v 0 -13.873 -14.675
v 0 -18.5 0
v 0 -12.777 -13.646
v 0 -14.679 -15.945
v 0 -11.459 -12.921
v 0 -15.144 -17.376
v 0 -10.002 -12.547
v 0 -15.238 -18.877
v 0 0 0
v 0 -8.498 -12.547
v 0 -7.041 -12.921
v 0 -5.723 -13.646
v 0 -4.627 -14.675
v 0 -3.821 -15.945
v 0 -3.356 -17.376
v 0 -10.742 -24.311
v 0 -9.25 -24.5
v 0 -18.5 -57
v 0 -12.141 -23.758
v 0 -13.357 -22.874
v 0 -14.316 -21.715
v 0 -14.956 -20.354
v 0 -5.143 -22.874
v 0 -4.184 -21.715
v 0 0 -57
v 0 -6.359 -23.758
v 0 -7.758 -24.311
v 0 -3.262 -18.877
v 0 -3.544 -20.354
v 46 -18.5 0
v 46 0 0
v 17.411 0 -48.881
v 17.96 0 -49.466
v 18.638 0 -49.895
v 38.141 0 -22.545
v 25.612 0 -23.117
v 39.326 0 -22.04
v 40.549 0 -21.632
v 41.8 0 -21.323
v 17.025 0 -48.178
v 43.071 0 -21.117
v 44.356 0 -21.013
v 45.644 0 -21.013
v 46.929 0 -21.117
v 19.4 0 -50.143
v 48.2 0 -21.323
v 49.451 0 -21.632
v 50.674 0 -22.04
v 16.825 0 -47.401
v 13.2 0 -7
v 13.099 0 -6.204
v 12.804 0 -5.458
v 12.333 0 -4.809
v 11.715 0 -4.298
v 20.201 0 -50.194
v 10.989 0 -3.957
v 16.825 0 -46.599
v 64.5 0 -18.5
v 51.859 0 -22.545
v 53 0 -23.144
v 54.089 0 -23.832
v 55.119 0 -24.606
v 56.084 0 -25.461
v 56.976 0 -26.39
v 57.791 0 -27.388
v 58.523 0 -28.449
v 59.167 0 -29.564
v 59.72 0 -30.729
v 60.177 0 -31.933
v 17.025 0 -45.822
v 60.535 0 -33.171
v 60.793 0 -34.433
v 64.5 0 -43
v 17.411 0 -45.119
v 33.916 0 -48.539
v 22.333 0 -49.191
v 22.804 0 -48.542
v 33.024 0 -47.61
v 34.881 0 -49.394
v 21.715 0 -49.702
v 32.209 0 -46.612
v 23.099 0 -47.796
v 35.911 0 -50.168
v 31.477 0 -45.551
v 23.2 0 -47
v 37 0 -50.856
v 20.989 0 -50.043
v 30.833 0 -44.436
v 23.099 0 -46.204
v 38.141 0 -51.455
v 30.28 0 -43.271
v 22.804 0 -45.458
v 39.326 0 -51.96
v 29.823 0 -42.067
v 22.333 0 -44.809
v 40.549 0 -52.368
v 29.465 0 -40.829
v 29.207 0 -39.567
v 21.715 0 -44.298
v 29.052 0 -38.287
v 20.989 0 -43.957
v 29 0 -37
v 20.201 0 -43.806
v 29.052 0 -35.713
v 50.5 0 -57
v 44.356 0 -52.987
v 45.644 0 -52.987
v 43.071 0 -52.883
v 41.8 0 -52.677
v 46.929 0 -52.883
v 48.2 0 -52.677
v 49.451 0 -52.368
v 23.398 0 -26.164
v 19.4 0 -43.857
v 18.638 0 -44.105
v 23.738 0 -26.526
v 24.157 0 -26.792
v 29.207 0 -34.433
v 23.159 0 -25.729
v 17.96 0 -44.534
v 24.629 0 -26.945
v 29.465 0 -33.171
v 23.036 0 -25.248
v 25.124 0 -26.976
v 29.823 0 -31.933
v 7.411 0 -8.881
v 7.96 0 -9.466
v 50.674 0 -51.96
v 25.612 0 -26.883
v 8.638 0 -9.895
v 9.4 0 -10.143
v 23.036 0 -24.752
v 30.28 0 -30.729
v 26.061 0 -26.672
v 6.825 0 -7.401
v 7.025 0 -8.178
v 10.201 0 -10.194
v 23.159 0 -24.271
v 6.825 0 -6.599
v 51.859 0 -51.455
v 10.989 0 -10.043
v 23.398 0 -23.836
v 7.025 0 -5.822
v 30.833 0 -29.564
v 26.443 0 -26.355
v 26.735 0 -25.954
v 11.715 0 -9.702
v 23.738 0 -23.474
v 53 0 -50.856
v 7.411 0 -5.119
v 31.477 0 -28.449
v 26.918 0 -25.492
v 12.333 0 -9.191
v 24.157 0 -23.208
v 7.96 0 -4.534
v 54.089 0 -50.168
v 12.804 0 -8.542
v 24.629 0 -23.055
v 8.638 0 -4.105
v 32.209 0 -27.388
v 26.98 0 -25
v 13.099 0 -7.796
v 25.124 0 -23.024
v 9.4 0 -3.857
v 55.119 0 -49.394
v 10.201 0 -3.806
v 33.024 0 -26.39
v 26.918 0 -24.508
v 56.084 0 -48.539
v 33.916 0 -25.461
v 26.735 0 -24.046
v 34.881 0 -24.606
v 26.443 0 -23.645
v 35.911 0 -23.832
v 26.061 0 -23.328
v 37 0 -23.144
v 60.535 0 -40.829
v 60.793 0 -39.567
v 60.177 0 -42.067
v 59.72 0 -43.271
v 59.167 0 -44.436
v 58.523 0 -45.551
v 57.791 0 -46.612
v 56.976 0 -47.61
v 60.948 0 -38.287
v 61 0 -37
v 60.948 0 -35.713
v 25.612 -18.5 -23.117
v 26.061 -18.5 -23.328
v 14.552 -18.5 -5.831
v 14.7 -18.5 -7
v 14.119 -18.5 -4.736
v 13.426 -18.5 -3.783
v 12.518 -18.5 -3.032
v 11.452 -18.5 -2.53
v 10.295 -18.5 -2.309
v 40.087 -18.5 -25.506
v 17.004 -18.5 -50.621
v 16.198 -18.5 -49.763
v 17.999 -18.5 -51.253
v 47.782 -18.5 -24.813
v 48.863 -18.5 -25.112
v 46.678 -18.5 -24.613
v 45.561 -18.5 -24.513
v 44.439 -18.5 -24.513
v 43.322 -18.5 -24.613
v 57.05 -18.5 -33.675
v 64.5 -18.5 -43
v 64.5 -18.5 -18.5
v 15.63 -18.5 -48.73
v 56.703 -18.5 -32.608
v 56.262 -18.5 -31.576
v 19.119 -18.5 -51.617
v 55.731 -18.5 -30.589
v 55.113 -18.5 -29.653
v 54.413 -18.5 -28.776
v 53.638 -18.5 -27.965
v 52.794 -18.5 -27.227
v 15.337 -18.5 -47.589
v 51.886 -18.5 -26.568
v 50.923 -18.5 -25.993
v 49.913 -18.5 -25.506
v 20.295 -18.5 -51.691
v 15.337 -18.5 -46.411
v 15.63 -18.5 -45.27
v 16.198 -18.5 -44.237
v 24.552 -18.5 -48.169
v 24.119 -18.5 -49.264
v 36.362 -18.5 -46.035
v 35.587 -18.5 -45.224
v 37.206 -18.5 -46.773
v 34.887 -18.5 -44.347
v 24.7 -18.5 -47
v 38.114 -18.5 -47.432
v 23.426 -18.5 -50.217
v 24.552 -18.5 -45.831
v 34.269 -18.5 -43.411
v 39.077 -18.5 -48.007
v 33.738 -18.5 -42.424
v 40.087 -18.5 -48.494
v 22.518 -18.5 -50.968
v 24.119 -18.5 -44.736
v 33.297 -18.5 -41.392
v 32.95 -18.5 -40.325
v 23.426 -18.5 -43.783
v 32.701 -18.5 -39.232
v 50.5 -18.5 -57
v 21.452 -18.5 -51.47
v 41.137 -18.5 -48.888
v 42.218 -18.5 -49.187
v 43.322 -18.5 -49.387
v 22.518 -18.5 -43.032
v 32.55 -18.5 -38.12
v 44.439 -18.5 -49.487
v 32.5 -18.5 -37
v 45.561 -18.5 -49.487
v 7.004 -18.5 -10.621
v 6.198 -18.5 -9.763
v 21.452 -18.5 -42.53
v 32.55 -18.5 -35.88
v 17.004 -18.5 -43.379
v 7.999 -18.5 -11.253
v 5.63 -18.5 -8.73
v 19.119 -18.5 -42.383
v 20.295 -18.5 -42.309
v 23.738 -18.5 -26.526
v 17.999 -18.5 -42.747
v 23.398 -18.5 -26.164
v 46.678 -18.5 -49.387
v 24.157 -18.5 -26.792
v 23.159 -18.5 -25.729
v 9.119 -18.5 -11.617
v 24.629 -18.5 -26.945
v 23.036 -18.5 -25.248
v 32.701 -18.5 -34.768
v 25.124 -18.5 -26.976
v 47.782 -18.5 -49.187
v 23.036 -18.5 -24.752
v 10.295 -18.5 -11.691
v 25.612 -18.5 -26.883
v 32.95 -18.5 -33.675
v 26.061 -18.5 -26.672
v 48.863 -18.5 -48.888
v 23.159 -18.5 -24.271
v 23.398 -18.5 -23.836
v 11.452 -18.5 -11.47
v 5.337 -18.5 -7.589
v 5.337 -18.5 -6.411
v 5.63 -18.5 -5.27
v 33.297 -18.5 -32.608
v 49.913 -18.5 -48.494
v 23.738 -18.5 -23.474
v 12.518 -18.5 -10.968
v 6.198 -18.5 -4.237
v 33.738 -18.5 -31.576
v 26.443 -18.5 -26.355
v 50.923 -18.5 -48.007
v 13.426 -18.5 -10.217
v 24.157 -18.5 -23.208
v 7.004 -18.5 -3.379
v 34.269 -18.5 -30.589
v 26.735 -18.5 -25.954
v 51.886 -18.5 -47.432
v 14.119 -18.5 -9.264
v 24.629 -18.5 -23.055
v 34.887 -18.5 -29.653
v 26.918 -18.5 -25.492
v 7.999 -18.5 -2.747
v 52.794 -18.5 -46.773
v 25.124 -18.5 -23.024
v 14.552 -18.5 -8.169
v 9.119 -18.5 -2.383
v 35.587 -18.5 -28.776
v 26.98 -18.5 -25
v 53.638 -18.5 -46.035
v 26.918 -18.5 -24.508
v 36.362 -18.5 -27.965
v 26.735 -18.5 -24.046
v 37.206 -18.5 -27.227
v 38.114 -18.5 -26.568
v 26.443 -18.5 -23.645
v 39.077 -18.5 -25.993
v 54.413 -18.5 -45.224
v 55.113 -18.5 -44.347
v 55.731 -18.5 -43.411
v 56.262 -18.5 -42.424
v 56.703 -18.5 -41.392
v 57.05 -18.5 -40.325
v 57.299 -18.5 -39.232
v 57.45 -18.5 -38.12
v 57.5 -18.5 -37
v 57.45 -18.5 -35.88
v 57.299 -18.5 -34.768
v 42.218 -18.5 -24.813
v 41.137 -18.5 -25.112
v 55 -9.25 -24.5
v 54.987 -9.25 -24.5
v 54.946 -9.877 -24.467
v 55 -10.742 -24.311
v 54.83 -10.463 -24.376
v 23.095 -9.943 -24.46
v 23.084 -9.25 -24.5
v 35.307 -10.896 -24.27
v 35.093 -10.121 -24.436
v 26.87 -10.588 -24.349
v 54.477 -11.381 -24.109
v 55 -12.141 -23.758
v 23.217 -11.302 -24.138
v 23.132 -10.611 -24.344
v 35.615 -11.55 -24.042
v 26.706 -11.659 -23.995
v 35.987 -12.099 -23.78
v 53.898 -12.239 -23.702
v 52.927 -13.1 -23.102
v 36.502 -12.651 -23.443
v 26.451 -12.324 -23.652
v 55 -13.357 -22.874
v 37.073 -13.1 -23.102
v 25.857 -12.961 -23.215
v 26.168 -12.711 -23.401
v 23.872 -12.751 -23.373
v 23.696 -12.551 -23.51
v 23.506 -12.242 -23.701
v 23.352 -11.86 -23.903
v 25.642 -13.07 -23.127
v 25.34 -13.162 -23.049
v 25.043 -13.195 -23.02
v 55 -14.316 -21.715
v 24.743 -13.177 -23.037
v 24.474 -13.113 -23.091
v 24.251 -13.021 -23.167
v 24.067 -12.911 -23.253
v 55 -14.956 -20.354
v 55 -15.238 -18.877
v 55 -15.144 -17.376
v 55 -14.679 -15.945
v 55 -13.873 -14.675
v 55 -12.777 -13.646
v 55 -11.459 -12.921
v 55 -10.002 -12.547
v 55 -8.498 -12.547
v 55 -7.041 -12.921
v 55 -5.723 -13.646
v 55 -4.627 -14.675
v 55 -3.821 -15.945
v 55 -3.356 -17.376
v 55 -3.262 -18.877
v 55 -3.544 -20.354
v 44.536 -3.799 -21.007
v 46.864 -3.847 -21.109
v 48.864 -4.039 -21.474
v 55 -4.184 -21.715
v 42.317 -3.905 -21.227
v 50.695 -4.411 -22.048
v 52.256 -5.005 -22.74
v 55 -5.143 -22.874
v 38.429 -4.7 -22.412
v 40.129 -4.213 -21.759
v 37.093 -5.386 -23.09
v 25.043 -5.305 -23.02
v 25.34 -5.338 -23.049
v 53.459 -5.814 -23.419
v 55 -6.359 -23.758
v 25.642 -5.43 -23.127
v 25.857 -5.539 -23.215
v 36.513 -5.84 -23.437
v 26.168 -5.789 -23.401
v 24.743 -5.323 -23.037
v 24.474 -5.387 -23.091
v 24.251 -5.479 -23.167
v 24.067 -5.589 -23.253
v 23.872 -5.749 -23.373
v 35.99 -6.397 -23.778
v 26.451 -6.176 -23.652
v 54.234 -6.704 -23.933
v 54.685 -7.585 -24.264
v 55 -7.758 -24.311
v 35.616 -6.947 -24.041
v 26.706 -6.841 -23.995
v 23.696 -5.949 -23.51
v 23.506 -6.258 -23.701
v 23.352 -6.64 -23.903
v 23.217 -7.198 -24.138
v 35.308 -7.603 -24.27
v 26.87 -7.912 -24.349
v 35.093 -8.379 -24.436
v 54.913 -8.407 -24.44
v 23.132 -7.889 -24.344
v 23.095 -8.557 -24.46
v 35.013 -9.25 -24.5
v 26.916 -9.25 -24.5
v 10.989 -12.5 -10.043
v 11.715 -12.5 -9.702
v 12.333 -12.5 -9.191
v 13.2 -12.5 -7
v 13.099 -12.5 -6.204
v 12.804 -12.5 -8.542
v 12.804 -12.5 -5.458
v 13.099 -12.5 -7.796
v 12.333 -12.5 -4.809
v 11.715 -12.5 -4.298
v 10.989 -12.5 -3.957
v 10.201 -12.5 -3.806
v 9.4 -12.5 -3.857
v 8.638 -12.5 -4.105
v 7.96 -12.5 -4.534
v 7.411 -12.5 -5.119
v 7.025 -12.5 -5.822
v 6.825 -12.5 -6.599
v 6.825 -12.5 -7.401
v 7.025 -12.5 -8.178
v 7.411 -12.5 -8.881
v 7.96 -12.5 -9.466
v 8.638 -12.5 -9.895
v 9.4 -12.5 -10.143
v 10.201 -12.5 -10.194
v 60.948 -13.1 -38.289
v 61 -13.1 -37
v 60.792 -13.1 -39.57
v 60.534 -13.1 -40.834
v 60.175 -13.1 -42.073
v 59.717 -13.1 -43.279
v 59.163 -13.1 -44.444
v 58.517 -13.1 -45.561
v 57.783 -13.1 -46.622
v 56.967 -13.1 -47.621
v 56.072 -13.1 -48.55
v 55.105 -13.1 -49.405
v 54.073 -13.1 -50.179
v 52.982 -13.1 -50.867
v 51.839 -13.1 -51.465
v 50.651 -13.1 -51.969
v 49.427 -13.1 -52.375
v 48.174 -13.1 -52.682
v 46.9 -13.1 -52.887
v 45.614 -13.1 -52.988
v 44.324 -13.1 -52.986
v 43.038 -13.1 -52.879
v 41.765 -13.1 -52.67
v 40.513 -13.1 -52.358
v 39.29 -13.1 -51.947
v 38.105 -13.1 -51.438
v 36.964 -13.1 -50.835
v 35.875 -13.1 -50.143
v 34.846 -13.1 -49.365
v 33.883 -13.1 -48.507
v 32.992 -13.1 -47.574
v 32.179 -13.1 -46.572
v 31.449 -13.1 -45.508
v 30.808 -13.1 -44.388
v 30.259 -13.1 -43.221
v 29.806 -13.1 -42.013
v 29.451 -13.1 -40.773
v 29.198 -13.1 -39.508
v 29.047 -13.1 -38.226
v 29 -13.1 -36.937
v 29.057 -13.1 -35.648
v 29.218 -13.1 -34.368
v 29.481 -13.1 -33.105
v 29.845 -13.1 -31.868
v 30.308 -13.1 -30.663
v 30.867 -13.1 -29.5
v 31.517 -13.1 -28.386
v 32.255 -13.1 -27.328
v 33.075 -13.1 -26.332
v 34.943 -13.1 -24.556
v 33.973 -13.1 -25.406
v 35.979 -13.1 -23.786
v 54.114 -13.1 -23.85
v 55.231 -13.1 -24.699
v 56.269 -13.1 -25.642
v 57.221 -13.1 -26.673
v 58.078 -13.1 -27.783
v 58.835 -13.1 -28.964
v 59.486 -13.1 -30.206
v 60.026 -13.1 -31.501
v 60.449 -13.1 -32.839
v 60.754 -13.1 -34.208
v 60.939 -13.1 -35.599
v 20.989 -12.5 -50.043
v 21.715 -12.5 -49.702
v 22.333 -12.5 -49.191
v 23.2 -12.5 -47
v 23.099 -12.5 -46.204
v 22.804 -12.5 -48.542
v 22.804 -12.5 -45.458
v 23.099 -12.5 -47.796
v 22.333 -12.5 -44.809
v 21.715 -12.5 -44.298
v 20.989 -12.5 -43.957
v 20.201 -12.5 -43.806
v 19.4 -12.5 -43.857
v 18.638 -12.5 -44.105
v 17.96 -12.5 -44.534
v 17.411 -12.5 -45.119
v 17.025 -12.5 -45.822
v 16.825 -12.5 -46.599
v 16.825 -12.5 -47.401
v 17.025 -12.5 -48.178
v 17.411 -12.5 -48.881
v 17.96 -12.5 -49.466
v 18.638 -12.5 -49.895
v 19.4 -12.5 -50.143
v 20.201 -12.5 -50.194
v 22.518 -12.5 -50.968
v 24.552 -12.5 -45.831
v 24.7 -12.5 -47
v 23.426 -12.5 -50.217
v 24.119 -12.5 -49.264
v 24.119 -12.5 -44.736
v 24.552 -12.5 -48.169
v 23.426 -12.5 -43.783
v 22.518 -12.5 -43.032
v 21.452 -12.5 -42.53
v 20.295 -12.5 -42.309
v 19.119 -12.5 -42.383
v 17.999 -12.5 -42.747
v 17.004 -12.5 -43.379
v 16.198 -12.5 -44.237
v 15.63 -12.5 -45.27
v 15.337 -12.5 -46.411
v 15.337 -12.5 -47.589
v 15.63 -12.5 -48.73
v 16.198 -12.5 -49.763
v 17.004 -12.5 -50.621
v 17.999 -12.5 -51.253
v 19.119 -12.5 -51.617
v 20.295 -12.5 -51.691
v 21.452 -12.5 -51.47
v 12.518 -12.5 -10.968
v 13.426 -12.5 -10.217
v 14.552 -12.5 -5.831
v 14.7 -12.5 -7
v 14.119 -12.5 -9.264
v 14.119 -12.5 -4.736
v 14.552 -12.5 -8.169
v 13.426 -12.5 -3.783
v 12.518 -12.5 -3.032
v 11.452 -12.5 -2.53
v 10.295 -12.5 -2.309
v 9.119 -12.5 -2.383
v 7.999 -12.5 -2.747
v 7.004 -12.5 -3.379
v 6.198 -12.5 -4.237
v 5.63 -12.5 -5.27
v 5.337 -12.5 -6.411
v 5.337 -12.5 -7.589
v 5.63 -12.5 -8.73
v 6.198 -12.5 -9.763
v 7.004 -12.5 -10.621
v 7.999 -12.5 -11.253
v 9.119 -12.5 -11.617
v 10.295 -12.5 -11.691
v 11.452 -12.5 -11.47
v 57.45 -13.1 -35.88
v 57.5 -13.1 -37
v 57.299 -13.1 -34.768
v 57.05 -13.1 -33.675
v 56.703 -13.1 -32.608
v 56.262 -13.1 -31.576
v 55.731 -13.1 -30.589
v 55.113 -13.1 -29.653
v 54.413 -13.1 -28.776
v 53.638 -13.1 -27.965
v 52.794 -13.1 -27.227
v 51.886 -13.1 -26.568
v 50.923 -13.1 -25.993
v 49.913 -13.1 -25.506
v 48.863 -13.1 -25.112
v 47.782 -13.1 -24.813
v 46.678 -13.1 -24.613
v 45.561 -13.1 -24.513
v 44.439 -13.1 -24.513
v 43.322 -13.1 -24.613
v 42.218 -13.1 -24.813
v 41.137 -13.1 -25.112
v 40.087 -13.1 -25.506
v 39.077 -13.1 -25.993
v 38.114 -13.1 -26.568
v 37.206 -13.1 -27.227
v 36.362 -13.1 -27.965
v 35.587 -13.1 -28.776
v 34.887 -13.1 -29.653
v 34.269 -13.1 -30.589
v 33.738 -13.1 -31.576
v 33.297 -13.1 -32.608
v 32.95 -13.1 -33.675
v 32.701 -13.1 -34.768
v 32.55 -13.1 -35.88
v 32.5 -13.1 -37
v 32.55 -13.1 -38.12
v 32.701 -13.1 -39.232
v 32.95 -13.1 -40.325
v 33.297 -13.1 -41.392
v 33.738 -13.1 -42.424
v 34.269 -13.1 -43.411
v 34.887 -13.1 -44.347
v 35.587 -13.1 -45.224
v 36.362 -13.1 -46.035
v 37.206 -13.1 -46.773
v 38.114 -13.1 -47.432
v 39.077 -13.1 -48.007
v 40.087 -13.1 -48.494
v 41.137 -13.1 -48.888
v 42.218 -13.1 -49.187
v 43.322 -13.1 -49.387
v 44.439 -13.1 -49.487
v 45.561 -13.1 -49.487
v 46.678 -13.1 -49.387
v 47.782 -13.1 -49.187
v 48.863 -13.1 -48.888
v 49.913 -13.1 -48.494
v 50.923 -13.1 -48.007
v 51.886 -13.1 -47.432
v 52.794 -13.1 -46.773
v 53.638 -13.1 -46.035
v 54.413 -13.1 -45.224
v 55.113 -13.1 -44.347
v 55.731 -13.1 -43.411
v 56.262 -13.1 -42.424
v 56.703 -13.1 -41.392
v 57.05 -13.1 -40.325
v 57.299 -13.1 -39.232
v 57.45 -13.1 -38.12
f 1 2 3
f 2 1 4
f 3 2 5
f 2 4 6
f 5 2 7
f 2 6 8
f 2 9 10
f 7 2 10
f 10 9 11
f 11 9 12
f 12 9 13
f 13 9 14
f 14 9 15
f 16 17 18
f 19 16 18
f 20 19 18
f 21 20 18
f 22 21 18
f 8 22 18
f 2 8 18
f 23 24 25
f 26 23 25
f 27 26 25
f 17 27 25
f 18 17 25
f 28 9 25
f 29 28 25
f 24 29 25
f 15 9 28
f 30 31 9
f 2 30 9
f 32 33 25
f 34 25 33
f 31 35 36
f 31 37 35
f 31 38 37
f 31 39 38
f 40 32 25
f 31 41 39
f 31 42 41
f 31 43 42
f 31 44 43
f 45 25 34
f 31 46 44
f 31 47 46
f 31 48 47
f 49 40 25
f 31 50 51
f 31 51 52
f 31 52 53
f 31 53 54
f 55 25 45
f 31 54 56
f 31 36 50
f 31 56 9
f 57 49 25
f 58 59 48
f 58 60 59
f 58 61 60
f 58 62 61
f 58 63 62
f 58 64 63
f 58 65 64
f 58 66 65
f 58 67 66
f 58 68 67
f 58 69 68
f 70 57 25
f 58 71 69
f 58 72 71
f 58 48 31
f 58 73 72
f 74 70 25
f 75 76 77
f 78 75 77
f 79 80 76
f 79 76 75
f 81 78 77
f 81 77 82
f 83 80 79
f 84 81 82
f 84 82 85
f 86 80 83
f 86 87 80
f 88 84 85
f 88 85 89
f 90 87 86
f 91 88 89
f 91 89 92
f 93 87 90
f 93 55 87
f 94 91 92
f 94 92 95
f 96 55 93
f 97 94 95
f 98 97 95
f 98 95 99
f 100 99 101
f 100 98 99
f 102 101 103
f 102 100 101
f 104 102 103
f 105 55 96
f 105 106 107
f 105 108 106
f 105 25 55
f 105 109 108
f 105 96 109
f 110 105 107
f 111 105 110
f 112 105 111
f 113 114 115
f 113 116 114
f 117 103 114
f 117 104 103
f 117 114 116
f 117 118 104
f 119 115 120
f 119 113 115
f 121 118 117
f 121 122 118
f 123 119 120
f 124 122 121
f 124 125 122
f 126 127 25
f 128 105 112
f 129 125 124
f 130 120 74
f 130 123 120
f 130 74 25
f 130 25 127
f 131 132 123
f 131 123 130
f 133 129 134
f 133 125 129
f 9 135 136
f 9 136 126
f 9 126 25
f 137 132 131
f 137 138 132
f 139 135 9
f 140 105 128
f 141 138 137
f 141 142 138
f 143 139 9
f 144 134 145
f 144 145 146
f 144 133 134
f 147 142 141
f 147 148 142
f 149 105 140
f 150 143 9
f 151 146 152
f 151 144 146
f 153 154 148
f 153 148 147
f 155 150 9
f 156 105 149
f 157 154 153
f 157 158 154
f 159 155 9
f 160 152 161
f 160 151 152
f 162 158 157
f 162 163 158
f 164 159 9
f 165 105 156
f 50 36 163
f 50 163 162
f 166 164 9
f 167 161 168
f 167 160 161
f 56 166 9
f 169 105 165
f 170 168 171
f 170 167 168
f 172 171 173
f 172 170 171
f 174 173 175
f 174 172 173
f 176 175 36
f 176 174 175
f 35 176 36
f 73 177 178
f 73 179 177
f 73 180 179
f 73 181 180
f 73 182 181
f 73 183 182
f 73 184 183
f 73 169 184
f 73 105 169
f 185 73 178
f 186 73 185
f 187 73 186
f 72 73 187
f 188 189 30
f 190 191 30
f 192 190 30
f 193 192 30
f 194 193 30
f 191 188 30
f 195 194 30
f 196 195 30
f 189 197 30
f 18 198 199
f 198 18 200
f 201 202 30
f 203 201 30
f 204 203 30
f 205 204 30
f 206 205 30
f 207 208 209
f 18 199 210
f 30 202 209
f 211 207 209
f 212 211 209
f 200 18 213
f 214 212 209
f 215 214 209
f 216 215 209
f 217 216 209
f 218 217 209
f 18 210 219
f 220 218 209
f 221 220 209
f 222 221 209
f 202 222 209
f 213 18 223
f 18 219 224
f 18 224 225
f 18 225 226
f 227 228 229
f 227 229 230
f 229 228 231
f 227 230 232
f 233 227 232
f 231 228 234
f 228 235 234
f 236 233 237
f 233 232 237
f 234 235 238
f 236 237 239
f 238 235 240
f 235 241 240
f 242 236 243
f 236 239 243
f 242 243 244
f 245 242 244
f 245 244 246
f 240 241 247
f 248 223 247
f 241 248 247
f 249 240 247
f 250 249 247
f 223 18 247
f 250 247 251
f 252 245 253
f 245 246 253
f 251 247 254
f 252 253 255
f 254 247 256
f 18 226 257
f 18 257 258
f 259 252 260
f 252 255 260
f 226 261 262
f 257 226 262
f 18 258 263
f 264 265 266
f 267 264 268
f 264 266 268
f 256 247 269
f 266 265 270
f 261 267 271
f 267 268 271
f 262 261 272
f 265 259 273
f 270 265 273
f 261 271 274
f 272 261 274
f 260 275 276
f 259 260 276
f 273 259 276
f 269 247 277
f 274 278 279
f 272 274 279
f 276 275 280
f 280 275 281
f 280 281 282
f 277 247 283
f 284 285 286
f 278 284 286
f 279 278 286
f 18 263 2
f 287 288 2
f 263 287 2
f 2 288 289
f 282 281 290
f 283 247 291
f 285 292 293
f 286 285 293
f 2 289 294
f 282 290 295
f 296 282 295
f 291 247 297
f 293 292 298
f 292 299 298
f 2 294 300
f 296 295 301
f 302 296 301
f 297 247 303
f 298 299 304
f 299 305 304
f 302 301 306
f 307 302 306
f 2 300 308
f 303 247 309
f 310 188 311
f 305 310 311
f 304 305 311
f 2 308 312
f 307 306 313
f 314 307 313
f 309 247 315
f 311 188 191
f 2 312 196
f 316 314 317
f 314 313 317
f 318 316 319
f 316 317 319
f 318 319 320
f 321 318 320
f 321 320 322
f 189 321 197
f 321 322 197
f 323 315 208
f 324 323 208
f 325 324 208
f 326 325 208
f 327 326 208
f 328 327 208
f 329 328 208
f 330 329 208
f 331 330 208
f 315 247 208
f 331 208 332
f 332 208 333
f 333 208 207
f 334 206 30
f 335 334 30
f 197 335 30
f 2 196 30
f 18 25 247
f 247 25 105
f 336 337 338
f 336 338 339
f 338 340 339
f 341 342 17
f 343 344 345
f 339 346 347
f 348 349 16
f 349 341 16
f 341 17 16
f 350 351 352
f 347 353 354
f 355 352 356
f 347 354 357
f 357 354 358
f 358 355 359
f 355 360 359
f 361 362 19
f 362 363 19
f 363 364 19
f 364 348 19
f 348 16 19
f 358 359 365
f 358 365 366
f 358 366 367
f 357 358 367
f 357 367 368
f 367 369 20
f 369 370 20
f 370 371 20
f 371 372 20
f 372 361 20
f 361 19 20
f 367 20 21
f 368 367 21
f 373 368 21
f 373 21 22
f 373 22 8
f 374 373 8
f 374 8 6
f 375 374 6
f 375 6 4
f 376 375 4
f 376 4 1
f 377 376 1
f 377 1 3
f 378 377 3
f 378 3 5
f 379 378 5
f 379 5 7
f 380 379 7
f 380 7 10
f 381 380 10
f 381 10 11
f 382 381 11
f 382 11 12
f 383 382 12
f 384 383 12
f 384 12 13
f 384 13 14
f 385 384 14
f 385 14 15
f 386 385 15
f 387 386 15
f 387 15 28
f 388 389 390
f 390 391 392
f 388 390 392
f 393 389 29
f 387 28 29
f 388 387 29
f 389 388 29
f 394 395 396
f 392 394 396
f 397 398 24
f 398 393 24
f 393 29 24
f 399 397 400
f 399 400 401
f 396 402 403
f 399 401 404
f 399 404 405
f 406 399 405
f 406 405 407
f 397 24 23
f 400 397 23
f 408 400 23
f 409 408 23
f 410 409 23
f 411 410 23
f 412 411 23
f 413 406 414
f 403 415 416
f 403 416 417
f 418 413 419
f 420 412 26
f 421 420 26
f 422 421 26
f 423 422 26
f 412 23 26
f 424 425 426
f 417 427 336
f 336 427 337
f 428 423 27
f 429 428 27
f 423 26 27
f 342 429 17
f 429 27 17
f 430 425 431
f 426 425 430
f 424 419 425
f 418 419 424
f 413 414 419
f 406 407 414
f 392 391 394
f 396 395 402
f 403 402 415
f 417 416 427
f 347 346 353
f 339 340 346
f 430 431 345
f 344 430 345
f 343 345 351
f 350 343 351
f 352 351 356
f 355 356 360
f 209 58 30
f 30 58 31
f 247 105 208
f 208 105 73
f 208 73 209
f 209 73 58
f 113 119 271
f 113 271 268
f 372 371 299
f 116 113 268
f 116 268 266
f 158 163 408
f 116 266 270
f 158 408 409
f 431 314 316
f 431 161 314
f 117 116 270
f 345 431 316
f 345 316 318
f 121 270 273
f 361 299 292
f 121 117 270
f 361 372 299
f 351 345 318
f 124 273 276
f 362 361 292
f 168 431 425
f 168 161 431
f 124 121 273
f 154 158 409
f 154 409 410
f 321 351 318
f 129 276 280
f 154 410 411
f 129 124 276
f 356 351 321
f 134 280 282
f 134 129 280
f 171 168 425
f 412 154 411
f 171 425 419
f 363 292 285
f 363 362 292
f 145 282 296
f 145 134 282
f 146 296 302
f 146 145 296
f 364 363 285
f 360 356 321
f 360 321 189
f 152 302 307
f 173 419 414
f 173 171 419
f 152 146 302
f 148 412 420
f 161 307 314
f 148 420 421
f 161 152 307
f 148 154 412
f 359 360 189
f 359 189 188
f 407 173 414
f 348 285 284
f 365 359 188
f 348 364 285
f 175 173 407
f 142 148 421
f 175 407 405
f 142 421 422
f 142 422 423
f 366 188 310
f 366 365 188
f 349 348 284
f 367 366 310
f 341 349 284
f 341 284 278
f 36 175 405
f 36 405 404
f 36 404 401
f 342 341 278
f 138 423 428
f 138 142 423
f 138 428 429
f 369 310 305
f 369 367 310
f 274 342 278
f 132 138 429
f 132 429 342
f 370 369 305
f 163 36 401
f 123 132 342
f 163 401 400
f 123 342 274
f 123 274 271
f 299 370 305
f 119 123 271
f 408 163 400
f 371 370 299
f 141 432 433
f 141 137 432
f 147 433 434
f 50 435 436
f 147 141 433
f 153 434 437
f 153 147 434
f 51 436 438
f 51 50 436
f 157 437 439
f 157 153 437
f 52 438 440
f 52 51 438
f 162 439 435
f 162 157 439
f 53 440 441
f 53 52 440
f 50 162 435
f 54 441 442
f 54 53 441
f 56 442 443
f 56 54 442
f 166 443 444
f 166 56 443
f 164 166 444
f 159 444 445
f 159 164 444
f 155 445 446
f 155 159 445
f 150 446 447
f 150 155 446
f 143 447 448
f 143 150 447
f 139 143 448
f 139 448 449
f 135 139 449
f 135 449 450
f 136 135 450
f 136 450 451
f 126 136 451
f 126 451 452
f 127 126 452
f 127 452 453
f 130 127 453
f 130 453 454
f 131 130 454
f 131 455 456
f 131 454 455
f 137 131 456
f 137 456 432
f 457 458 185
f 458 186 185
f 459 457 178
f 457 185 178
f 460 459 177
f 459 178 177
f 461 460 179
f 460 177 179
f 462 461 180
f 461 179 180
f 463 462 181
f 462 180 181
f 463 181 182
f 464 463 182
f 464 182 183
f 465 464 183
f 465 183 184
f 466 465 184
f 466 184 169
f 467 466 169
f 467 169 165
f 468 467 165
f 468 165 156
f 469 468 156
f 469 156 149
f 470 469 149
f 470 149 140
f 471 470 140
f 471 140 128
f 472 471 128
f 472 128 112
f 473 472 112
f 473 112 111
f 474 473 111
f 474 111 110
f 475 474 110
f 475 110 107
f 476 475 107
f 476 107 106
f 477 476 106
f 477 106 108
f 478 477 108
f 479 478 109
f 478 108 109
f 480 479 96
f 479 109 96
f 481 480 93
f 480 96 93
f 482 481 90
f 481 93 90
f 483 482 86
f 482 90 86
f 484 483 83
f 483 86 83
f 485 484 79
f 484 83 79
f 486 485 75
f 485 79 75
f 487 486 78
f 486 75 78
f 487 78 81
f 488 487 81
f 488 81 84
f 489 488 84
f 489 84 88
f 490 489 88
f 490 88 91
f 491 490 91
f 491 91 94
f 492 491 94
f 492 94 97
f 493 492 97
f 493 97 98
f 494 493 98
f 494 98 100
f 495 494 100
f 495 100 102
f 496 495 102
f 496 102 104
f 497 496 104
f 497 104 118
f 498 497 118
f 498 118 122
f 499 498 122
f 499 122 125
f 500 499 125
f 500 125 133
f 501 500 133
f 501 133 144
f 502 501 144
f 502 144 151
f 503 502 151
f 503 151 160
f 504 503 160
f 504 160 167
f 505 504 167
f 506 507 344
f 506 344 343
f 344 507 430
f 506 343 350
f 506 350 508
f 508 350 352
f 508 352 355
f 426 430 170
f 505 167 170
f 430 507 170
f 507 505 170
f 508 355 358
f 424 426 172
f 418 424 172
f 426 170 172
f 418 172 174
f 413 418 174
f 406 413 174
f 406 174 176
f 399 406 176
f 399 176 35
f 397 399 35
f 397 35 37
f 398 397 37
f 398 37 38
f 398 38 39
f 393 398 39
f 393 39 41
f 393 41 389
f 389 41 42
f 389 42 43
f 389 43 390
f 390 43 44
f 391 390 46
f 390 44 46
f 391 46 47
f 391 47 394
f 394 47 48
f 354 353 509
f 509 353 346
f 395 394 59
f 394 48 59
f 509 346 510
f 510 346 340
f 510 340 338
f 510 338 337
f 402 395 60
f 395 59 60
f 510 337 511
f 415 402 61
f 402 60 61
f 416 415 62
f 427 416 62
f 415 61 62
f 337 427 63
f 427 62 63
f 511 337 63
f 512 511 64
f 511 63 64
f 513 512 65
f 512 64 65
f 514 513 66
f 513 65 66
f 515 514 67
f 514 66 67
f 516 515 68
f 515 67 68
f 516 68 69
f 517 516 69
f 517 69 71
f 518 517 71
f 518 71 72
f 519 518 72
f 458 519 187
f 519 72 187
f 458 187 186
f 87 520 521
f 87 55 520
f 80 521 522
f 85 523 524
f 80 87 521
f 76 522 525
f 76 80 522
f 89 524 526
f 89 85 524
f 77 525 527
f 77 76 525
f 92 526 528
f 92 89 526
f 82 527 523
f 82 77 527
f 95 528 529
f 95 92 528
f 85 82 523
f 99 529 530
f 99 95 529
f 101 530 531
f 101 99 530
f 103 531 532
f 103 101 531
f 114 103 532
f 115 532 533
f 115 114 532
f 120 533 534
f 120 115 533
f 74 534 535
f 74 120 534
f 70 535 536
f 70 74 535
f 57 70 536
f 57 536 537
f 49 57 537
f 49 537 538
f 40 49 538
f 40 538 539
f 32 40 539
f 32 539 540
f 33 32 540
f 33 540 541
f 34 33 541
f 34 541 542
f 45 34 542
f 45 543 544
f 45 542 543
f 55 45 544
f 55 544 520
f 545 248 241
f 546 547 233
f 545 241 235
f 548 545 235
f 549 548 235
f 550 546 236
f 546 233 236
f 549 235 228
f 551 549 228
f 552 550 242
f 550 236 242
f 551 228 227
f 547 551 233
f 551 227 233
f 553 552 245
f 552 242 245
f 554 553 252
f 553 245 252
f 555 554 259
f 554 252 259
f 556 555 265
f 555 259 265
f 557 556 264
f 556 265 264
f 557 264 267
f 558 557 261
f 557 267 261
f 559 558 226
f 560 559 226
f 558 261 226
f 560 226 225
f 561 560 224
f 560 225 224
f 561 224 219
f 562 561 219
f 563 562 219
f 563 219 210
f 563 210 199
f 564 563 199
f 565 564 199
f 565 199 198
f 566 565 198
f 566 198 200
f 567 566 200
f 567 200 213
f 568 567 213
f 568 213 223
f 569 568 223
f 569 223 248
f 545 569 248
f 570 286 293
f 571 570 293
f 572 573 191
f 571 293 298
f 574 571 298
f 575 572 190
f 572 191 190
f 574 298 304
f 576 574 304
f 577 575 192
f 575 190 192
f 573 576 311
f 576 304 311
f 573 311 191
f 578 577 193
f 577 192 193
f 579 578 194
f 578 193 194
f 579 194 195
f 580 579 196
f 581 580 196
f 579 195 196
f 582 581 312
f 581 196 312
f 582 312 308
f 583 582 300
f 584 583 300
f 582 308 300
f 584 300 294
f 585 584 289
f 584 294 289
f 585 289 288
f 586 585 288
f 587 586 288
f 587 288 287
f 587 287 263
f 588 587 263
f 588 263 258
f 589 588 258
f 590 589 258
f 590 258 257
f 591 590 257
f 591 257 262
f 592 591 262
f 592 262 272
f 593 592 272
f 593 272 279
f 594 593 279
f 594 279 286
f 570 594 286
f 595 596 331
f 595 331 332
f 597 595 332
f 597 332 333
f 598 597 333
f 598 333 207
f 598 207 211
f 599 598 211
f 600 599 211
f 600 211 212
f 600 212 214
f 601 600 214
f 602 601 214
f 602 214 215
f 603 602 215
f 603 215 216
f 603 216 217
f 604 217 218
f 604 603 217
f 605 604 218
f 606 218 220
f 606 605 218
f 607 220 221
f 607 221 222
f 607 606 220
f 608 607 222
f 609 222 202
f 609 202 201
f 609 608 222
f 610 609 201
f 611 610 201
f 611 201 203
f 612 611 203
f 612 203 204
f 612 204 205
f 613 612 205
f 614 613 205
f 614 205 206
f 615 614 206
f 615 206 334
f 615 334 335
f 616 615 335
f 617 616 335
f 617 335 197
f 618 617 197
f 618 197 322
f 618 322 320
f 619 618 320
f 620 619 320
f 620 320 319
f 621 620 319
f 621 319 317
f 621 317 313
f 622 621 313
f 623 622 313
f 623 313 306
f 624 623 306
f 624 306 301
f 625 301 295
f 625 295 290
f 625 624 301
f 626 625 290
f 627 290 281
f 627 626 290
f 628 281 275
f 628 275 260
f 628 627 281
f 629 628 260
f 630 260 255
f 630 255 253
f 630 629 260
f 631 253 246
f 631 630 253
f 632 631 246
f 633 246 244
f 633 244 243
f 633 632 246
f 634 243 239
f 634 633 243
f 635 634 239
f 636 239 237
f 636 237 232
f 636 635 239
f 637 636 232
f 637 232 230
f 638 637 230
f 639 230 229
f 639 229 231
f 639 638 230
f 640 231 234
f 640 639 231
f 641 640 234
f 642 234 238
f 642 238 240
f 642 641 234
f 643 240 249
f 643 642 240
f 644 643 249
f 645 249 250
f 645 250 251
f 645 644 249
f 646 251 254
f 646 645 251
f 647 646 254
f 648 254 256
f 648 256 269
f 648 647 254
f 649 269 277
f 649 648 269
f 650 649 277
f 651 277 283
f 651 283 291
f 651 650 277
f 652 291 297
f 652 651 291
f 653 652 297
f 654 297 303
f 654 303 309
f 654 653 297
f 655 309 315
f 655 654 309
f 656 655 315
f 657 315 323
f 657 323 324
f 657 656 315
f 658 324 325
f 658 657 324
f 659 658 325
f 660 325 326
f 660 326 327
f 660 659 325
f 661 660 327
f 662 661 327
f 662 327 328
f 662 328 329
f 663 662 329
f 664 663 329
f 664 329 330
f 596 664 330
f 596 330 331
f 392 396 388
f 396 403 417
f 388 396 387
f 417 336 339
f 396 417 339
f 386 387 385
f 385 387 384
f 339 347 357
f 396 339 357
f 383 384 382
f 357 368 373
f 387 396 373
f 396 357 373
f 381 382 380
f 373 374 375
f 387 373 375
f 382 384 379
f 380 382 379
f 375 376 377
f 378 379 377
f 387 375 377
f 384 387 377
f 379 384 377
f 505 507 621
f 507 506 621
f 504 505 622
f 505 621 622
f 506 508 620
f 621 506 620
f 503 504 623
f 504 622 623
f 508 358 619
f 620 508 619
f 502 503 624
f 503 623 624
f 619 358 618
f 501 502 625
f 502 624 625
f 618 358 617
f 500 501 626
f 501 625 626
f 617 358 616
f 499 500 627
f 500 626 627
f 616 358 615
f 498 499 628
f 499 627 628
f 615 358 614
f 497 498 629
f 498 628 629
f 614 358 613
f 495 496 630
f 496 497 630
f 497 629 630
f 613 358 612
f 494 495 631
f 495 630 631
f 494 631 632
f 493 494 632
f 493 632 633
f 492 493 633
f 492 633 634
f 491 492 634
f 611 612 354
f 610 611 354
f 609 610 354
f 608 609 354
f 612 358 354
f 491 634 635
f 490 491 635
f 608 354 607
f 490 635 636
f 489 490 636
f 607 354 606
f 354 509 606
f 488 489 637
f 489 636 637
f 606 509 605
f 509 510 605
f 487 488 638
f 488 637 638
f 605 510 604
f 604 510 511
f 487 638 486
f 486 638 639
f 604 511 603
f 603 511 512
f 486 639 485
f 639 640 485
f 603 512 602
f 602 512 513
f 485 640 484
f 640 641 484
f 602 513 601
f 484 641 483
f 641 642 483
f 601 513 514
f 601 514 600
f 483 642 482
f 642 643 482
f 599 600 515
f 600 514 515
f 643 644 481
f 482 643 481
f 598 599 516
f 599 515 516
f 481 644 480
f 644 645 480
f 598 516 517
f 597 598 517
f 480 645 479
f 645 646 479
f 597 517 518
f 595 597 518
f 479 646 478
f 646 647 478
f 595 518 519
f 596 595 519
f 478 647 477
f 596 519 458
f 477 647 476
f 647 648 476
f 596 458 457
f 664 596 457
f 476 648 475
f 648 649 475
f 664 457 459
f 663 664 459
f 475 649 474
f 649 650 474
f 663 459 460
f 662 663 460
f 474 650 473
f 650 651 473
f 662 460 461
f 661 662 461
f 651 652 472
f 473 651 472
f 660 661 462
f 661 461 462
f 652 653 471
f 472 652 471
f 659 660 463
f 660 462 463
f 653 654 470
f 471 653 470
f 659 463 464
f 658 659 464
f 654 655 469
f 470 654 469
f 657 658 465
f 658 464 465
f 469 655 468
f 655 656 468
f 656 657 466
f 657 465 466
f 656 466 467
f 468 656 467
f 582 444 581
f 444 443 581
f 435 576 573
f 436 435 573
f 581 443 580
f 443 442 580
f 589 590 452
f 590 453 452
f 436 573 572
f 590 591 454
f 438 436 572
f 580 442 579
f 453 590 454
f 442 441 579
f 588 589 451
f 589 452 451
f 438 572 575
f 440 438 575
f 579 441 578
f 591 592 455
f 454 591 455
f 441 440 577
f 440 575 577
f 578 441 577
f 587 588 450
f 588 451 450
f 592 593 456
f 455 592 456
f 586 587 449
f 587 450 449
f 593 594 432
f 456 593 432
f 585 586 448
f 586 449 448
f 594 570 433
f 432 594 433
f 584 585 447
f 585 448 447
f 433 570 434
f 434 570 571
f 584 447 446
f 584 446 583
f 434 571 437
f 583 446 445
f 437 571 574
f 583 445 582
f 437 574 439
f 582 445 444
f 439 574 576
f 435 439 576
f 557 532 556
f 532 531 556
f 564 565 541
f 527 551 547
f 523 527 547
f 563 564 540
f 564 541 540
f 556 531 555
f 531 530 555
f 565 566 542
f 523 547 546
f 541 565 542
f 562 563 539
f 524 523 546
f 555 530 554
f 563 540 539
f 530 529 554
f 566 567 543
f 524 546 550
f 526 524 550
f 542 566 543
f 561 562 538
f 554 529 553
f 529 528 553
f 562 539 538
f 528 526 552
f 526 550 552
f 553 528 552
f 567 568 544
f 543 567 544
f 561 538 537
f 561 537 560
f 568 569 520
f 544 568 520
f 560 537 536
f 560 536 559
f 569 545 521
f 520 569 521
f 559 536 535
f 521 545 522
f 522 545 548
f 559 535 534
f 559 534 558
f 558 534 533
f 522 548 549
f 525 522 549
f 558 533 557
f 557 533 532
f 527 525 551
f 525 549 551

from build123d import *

# Parameters (mm, degrees)
SKETCH_R        = 3.2
SKETCH_R_2      = 1.98
SKETCH_R_3      = 12.5
PAD_DEPTH       = 18.5
SKETCH001_R     = 4.7
POCKET_DEPTH    = 6
SKETCH002_R     = 16
POCKET001_DEPTH = 13.1
SKETCH003_R     = 6
POCKET002_DEPTH = 55


with BuildPart() as part:
    # Sketch → Pad (new body)
    with BuildSketch(Plane.XZ):
        Polygon((0, 0), (0, -57), (50.5, -57), (64.5, -43), (64.5, -18.5), (46, 0), align=None)
        with Locations((10, -7)):
            Circle(SKETCH_R, mode=Mode.SUBTRACT)
        with Locations((20, -47)):
            Circle(SKETCH_R, mode=Mode.SUBTRACT)
        with Locations((25, -25)):
            Circle(SKETCH_R_2, mode=Mode.SUBTRACT)
        with Locations((45, -37)):
            Circle(SKETCH_R_3, mode=Mode.SUBTRACT)
    extrude(amount=PAD_DEPTH)

    # Sketch001 → Pocket (cut)
    with BuildSketch(Plane.XZ.offset(18.5)):
        with Locations((10, -7)):
            Circle(SKETCH001_R)
        with Locations((20, -47)):
            Circle(SKETCH001_R)
    extrude(amount=-POCKET_DEPTH, mode=Mode.SUBTRACT)

    # Sketch002 → Pocket001 (cut)
    with BuildSketch(Plane(origin=(0, 0, 0), x_dir=(1, 0, 0), z_dir=(0, 1, 0))):
        with Locations((45, 37)):
            Circle(SKETCH002_R)
    extrude(amount=-POCKET001_DEPTH, mode=Mode.SUBTRACT)

    # Sketch003 → Pocket002 (cut)
    with BuildSketch(Plane(origin=(0, 0, 0), x_dir=(0, 0, -1), z_dir=(-1, 0, 0))):
        with Locations((18.5, 9.25)):
            Circle(SKETCH003_R)
    extrude(amount=-POCKET002_DEPTH, mode=Mode.SUBTRACT)


solid = part.part
